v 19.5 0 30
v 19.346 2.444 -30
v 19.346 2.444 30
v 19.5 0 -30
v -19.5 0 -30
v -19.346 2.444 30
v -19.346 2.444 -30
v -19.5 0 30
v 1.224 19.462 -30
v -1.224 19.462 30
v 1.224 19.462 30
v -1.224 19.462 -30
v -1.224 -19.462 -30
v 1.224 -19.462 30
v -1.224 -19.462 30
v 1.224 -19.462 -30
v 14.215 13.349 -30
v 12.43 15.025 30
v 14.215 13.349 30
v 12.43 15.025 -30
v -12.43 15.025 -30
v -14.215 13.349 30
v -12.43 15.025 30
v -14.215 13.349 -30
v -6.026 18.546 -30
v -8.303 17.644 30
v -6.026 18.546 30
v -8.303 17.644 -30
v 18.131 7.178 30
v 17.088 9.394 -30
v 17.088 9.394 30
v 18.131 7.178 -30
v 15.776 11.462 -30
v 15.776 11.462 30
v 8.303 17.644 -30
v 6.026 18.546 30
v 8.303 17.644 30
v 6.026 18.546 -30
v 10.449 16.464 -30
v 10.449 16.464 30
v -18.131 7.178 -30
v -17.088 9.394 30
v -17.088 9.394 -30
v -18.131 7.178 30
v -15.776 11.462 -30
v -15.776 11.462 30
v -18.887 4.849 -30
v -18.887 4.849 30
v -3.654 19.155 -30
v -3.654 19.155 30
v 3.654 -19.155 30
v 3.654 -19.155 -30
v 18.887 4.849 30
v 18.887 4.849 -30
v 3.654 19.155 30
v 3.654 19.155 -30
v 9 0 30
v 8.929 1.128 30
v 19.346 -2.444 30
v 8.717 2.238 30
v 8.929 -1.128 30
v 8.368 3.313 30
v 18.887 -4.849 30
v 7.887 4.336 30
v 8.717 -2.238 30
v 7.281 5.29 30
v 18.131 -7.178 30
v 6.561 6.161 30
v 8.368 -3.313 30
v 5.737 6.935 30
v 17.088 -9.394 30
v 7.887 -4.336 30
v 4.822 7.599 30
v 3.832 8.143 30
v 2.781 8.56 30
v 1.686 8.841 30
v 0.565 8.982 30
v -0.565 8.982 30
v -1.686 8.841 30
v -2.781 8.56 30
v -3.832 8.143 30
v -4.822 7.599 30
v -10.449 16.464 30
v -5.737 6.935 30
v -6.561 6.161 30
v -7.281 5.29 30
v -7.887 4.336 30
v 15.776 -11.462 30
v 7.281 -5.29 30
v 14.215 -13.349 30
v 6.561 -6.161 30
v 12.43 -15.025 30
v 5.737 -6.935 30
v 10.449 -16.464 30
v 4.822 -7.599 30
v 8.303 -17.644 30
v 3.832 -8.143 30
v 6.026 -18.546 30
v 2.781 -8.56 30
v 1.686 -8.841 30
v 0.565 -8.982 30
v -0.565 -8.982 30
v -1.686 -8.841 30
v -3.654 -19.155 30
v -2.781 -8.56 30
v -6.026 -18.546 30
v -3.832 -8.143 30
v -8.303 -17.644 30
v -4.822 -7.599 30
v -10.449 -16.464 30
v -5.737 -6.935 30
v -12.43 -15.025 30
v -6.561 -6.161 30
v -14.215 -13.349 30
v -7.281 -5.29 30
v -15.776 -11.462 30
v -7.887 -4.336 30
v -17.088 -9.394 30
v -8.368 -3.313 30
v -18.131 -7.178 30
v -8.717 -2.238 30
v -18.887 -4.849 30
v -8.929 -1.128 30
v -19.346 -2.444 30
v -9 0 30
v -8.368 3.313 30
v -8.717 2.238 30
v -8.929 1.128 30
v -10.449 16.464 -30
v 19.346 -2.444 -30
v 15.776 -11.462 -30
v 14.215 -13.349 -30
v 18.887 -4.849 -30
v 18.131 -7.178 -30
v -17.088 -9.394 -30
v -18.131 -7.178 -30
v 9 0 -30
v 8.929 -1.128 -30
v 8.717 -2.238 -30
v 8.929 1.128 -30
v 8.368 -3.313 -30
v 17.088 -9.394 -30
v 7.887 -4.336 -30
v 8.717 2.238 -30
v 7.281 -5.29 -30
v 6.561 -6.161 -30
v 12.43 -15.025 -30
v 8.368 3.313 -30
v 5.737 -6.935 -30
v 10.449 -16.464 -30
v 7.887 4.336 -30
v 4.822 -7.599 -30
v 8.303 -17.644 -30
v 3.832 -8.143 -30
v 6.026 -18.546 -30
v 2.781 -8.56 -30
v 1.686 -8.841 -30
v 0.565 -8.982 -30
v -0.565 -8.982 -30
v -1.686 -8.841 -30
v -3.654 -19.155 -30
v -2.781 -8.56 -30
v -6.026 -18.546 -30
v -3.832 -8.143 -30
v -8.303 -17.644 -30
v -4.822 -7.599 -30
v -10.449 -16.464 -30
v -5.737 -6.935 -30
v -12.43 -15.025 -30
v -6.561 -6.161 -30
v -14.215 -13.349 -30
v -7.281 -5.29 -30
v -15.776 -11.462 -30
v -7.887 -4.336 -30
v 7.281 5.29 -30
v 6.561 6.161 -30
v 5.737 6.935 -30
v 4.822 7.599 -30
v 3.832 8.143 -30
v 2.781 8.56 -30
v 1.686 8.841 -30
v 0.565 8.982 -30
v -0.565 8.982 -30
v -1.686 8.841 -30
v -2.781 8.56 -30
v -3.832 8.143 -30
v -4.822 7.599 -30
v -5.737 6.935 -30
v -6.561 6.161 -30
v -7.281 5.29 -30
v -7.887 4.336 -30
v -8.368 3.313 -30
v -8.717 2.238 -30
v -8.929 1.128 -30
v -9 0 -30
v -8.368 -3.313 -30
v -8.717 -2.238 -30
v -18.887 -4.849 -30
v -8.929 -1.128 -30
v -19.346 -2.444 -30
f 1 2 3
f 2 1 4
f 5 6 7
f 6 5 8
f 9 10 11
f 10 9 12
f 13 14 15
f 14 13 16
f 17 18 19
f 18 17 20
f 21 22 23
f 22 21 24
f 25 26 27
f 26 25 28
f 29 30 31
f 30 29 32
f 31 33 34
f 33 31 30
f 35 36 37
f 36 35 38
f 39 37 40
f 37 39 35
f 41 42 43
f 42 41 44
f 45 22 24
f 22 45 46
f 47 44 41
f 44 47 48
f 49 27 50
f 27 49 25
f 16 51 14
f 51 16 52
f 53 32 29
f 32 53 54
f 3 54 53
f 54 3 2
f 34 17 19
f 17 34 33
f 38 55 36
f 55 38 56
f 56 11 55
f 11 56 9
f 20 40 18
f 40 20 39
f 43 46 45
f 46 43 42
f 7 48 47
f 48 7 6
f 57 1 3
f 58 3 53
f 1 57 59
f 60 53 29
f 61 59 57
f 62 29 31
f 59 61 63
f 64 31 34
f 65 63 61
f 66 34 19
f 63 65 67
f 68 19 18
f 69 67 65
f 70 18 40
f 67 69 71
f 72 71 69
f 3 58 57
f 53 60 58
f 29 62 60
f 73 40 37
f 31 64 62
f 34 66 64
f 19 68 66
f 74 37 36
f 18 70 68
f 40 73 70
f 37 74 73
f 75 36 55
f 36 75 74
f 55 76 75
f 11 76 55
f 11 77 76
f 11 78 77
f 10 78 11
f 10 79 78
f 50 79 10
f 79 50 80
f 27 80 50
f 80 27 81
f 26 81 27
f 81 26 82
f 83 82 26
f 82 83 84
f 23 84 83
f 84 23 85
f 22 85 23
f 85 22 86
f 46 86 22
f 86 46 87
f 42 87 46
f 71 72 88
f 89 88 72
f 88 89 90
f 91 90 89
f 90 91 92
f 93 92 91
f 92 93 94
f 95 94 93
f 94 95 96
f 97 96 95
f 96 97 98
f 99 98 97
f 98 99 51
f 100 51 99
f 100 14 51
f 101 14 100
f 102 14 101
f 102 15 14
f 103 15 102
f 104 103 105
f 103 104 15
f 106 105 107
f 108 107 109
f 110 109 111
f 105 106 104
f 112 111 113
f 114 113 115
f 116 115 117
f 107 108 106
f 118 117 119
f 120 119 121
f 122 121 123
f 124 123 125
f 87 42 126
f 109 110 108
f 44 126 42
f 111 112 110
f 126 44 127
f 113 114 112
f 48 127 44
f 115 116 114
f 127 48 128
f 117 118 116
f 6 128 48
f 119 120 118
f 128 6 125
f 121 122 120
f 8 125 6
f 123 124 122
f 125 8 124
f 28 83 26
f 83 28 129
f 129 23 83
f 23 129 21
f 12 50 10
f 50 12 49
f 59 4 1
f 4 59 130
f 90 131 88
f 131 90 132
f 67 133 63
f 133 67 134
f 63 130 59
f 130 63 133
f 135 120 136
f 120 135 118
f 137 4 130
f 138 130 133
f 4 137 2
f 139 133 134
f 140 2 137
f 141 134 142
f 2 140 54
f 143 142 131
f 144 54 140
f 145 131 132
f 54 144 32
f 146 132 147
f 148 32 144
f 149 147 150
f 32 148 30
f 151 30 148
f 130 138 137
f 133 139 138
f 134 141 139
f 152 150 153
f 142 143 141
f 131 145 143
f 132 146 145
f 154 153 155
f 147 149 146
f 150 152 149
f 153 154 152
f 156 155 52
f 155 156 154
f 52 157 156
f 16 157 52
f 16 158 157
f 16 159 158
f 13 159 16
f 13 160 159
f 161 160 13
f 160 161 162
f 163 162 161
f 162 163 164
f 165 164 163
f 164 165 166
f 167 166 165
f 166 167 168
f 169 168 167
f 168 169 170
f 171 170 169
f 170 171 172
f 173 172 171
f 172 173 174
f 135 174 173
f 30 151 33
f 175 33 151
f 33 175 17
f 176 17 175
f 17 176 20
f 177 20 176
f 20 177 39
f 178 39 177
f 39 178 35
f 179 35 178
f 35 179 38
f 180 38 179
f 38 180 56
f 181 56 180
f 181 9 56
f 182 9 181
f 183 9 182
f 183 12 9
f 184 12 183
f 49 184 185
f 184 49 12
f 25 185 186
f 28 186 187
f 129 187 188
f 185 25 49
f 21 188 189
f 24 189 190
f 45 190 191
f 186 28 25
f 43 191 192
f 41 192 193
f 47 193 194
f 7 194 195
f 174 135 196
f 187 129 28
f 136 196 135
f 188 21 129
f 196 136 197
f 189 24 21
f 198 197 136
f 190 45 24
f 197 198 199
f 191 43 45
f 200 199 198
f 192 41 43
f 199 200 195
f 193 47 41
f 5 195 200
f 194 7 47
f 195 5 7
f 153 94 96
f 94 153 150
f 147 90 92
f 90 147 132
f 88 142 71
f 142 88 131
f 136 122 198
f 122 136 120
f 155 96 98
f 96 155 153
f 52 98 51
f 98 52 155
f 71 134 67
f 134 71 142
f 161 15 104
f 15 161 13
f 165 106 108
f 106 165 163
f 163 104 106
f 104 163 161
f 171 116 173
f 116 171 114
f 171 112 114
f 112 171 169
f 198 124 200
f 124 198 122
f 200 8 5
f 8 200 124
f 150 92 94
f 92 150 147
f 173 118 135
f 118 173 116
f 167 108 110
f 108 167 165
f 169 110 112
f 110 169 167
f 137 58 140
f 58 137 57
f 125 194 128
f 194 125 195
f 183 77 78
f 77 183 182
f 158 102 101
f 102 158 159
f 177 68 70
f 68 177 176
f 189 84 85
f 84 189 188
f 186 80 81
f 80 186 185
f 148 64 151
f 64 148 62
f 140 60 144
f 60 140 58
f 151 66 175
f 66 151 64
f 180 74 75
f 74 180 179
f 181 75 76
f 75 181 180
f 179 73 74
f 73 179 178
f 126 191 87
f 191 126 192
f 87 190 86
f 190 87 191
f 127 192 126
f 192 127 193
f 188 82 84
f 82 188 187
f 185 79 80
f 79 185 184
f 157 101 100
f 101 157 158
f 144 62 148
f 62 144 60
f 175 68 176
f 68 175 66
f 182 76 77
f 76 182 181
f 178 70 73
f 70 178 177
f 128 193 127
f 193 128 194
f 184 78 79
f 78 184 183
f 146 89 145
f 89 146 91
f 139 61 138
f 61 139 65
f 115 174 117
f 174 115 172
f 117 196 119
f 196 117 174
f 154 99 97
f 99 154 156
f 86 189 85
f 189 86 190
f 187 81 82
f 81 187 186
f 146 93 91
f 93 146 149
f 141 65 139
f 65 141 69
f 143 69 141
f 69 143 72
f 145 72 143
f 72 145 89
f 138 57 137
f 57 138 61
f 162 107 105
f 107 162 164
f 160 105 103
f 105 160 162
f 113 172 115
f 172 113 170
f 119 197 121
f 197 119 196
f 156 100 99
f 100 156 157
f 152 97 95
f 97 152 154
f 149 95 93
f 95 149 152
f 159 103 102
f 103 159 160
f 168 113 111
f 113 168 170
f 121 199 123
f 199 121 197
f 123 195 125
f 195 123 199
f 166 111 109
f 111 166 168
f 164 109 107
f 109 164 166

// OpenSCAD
$fn = 50;


difference() {
	union() {
		translate(v = [0, 0, -30.0000000000]) {
			cylinder(h = 60, r = 19.5000000000);
		}
	}
	union() {
		translate(v = [0, 0, -100.0000000000]) {
			cylinder(h = 200, r = 9);
		}
	}
}
